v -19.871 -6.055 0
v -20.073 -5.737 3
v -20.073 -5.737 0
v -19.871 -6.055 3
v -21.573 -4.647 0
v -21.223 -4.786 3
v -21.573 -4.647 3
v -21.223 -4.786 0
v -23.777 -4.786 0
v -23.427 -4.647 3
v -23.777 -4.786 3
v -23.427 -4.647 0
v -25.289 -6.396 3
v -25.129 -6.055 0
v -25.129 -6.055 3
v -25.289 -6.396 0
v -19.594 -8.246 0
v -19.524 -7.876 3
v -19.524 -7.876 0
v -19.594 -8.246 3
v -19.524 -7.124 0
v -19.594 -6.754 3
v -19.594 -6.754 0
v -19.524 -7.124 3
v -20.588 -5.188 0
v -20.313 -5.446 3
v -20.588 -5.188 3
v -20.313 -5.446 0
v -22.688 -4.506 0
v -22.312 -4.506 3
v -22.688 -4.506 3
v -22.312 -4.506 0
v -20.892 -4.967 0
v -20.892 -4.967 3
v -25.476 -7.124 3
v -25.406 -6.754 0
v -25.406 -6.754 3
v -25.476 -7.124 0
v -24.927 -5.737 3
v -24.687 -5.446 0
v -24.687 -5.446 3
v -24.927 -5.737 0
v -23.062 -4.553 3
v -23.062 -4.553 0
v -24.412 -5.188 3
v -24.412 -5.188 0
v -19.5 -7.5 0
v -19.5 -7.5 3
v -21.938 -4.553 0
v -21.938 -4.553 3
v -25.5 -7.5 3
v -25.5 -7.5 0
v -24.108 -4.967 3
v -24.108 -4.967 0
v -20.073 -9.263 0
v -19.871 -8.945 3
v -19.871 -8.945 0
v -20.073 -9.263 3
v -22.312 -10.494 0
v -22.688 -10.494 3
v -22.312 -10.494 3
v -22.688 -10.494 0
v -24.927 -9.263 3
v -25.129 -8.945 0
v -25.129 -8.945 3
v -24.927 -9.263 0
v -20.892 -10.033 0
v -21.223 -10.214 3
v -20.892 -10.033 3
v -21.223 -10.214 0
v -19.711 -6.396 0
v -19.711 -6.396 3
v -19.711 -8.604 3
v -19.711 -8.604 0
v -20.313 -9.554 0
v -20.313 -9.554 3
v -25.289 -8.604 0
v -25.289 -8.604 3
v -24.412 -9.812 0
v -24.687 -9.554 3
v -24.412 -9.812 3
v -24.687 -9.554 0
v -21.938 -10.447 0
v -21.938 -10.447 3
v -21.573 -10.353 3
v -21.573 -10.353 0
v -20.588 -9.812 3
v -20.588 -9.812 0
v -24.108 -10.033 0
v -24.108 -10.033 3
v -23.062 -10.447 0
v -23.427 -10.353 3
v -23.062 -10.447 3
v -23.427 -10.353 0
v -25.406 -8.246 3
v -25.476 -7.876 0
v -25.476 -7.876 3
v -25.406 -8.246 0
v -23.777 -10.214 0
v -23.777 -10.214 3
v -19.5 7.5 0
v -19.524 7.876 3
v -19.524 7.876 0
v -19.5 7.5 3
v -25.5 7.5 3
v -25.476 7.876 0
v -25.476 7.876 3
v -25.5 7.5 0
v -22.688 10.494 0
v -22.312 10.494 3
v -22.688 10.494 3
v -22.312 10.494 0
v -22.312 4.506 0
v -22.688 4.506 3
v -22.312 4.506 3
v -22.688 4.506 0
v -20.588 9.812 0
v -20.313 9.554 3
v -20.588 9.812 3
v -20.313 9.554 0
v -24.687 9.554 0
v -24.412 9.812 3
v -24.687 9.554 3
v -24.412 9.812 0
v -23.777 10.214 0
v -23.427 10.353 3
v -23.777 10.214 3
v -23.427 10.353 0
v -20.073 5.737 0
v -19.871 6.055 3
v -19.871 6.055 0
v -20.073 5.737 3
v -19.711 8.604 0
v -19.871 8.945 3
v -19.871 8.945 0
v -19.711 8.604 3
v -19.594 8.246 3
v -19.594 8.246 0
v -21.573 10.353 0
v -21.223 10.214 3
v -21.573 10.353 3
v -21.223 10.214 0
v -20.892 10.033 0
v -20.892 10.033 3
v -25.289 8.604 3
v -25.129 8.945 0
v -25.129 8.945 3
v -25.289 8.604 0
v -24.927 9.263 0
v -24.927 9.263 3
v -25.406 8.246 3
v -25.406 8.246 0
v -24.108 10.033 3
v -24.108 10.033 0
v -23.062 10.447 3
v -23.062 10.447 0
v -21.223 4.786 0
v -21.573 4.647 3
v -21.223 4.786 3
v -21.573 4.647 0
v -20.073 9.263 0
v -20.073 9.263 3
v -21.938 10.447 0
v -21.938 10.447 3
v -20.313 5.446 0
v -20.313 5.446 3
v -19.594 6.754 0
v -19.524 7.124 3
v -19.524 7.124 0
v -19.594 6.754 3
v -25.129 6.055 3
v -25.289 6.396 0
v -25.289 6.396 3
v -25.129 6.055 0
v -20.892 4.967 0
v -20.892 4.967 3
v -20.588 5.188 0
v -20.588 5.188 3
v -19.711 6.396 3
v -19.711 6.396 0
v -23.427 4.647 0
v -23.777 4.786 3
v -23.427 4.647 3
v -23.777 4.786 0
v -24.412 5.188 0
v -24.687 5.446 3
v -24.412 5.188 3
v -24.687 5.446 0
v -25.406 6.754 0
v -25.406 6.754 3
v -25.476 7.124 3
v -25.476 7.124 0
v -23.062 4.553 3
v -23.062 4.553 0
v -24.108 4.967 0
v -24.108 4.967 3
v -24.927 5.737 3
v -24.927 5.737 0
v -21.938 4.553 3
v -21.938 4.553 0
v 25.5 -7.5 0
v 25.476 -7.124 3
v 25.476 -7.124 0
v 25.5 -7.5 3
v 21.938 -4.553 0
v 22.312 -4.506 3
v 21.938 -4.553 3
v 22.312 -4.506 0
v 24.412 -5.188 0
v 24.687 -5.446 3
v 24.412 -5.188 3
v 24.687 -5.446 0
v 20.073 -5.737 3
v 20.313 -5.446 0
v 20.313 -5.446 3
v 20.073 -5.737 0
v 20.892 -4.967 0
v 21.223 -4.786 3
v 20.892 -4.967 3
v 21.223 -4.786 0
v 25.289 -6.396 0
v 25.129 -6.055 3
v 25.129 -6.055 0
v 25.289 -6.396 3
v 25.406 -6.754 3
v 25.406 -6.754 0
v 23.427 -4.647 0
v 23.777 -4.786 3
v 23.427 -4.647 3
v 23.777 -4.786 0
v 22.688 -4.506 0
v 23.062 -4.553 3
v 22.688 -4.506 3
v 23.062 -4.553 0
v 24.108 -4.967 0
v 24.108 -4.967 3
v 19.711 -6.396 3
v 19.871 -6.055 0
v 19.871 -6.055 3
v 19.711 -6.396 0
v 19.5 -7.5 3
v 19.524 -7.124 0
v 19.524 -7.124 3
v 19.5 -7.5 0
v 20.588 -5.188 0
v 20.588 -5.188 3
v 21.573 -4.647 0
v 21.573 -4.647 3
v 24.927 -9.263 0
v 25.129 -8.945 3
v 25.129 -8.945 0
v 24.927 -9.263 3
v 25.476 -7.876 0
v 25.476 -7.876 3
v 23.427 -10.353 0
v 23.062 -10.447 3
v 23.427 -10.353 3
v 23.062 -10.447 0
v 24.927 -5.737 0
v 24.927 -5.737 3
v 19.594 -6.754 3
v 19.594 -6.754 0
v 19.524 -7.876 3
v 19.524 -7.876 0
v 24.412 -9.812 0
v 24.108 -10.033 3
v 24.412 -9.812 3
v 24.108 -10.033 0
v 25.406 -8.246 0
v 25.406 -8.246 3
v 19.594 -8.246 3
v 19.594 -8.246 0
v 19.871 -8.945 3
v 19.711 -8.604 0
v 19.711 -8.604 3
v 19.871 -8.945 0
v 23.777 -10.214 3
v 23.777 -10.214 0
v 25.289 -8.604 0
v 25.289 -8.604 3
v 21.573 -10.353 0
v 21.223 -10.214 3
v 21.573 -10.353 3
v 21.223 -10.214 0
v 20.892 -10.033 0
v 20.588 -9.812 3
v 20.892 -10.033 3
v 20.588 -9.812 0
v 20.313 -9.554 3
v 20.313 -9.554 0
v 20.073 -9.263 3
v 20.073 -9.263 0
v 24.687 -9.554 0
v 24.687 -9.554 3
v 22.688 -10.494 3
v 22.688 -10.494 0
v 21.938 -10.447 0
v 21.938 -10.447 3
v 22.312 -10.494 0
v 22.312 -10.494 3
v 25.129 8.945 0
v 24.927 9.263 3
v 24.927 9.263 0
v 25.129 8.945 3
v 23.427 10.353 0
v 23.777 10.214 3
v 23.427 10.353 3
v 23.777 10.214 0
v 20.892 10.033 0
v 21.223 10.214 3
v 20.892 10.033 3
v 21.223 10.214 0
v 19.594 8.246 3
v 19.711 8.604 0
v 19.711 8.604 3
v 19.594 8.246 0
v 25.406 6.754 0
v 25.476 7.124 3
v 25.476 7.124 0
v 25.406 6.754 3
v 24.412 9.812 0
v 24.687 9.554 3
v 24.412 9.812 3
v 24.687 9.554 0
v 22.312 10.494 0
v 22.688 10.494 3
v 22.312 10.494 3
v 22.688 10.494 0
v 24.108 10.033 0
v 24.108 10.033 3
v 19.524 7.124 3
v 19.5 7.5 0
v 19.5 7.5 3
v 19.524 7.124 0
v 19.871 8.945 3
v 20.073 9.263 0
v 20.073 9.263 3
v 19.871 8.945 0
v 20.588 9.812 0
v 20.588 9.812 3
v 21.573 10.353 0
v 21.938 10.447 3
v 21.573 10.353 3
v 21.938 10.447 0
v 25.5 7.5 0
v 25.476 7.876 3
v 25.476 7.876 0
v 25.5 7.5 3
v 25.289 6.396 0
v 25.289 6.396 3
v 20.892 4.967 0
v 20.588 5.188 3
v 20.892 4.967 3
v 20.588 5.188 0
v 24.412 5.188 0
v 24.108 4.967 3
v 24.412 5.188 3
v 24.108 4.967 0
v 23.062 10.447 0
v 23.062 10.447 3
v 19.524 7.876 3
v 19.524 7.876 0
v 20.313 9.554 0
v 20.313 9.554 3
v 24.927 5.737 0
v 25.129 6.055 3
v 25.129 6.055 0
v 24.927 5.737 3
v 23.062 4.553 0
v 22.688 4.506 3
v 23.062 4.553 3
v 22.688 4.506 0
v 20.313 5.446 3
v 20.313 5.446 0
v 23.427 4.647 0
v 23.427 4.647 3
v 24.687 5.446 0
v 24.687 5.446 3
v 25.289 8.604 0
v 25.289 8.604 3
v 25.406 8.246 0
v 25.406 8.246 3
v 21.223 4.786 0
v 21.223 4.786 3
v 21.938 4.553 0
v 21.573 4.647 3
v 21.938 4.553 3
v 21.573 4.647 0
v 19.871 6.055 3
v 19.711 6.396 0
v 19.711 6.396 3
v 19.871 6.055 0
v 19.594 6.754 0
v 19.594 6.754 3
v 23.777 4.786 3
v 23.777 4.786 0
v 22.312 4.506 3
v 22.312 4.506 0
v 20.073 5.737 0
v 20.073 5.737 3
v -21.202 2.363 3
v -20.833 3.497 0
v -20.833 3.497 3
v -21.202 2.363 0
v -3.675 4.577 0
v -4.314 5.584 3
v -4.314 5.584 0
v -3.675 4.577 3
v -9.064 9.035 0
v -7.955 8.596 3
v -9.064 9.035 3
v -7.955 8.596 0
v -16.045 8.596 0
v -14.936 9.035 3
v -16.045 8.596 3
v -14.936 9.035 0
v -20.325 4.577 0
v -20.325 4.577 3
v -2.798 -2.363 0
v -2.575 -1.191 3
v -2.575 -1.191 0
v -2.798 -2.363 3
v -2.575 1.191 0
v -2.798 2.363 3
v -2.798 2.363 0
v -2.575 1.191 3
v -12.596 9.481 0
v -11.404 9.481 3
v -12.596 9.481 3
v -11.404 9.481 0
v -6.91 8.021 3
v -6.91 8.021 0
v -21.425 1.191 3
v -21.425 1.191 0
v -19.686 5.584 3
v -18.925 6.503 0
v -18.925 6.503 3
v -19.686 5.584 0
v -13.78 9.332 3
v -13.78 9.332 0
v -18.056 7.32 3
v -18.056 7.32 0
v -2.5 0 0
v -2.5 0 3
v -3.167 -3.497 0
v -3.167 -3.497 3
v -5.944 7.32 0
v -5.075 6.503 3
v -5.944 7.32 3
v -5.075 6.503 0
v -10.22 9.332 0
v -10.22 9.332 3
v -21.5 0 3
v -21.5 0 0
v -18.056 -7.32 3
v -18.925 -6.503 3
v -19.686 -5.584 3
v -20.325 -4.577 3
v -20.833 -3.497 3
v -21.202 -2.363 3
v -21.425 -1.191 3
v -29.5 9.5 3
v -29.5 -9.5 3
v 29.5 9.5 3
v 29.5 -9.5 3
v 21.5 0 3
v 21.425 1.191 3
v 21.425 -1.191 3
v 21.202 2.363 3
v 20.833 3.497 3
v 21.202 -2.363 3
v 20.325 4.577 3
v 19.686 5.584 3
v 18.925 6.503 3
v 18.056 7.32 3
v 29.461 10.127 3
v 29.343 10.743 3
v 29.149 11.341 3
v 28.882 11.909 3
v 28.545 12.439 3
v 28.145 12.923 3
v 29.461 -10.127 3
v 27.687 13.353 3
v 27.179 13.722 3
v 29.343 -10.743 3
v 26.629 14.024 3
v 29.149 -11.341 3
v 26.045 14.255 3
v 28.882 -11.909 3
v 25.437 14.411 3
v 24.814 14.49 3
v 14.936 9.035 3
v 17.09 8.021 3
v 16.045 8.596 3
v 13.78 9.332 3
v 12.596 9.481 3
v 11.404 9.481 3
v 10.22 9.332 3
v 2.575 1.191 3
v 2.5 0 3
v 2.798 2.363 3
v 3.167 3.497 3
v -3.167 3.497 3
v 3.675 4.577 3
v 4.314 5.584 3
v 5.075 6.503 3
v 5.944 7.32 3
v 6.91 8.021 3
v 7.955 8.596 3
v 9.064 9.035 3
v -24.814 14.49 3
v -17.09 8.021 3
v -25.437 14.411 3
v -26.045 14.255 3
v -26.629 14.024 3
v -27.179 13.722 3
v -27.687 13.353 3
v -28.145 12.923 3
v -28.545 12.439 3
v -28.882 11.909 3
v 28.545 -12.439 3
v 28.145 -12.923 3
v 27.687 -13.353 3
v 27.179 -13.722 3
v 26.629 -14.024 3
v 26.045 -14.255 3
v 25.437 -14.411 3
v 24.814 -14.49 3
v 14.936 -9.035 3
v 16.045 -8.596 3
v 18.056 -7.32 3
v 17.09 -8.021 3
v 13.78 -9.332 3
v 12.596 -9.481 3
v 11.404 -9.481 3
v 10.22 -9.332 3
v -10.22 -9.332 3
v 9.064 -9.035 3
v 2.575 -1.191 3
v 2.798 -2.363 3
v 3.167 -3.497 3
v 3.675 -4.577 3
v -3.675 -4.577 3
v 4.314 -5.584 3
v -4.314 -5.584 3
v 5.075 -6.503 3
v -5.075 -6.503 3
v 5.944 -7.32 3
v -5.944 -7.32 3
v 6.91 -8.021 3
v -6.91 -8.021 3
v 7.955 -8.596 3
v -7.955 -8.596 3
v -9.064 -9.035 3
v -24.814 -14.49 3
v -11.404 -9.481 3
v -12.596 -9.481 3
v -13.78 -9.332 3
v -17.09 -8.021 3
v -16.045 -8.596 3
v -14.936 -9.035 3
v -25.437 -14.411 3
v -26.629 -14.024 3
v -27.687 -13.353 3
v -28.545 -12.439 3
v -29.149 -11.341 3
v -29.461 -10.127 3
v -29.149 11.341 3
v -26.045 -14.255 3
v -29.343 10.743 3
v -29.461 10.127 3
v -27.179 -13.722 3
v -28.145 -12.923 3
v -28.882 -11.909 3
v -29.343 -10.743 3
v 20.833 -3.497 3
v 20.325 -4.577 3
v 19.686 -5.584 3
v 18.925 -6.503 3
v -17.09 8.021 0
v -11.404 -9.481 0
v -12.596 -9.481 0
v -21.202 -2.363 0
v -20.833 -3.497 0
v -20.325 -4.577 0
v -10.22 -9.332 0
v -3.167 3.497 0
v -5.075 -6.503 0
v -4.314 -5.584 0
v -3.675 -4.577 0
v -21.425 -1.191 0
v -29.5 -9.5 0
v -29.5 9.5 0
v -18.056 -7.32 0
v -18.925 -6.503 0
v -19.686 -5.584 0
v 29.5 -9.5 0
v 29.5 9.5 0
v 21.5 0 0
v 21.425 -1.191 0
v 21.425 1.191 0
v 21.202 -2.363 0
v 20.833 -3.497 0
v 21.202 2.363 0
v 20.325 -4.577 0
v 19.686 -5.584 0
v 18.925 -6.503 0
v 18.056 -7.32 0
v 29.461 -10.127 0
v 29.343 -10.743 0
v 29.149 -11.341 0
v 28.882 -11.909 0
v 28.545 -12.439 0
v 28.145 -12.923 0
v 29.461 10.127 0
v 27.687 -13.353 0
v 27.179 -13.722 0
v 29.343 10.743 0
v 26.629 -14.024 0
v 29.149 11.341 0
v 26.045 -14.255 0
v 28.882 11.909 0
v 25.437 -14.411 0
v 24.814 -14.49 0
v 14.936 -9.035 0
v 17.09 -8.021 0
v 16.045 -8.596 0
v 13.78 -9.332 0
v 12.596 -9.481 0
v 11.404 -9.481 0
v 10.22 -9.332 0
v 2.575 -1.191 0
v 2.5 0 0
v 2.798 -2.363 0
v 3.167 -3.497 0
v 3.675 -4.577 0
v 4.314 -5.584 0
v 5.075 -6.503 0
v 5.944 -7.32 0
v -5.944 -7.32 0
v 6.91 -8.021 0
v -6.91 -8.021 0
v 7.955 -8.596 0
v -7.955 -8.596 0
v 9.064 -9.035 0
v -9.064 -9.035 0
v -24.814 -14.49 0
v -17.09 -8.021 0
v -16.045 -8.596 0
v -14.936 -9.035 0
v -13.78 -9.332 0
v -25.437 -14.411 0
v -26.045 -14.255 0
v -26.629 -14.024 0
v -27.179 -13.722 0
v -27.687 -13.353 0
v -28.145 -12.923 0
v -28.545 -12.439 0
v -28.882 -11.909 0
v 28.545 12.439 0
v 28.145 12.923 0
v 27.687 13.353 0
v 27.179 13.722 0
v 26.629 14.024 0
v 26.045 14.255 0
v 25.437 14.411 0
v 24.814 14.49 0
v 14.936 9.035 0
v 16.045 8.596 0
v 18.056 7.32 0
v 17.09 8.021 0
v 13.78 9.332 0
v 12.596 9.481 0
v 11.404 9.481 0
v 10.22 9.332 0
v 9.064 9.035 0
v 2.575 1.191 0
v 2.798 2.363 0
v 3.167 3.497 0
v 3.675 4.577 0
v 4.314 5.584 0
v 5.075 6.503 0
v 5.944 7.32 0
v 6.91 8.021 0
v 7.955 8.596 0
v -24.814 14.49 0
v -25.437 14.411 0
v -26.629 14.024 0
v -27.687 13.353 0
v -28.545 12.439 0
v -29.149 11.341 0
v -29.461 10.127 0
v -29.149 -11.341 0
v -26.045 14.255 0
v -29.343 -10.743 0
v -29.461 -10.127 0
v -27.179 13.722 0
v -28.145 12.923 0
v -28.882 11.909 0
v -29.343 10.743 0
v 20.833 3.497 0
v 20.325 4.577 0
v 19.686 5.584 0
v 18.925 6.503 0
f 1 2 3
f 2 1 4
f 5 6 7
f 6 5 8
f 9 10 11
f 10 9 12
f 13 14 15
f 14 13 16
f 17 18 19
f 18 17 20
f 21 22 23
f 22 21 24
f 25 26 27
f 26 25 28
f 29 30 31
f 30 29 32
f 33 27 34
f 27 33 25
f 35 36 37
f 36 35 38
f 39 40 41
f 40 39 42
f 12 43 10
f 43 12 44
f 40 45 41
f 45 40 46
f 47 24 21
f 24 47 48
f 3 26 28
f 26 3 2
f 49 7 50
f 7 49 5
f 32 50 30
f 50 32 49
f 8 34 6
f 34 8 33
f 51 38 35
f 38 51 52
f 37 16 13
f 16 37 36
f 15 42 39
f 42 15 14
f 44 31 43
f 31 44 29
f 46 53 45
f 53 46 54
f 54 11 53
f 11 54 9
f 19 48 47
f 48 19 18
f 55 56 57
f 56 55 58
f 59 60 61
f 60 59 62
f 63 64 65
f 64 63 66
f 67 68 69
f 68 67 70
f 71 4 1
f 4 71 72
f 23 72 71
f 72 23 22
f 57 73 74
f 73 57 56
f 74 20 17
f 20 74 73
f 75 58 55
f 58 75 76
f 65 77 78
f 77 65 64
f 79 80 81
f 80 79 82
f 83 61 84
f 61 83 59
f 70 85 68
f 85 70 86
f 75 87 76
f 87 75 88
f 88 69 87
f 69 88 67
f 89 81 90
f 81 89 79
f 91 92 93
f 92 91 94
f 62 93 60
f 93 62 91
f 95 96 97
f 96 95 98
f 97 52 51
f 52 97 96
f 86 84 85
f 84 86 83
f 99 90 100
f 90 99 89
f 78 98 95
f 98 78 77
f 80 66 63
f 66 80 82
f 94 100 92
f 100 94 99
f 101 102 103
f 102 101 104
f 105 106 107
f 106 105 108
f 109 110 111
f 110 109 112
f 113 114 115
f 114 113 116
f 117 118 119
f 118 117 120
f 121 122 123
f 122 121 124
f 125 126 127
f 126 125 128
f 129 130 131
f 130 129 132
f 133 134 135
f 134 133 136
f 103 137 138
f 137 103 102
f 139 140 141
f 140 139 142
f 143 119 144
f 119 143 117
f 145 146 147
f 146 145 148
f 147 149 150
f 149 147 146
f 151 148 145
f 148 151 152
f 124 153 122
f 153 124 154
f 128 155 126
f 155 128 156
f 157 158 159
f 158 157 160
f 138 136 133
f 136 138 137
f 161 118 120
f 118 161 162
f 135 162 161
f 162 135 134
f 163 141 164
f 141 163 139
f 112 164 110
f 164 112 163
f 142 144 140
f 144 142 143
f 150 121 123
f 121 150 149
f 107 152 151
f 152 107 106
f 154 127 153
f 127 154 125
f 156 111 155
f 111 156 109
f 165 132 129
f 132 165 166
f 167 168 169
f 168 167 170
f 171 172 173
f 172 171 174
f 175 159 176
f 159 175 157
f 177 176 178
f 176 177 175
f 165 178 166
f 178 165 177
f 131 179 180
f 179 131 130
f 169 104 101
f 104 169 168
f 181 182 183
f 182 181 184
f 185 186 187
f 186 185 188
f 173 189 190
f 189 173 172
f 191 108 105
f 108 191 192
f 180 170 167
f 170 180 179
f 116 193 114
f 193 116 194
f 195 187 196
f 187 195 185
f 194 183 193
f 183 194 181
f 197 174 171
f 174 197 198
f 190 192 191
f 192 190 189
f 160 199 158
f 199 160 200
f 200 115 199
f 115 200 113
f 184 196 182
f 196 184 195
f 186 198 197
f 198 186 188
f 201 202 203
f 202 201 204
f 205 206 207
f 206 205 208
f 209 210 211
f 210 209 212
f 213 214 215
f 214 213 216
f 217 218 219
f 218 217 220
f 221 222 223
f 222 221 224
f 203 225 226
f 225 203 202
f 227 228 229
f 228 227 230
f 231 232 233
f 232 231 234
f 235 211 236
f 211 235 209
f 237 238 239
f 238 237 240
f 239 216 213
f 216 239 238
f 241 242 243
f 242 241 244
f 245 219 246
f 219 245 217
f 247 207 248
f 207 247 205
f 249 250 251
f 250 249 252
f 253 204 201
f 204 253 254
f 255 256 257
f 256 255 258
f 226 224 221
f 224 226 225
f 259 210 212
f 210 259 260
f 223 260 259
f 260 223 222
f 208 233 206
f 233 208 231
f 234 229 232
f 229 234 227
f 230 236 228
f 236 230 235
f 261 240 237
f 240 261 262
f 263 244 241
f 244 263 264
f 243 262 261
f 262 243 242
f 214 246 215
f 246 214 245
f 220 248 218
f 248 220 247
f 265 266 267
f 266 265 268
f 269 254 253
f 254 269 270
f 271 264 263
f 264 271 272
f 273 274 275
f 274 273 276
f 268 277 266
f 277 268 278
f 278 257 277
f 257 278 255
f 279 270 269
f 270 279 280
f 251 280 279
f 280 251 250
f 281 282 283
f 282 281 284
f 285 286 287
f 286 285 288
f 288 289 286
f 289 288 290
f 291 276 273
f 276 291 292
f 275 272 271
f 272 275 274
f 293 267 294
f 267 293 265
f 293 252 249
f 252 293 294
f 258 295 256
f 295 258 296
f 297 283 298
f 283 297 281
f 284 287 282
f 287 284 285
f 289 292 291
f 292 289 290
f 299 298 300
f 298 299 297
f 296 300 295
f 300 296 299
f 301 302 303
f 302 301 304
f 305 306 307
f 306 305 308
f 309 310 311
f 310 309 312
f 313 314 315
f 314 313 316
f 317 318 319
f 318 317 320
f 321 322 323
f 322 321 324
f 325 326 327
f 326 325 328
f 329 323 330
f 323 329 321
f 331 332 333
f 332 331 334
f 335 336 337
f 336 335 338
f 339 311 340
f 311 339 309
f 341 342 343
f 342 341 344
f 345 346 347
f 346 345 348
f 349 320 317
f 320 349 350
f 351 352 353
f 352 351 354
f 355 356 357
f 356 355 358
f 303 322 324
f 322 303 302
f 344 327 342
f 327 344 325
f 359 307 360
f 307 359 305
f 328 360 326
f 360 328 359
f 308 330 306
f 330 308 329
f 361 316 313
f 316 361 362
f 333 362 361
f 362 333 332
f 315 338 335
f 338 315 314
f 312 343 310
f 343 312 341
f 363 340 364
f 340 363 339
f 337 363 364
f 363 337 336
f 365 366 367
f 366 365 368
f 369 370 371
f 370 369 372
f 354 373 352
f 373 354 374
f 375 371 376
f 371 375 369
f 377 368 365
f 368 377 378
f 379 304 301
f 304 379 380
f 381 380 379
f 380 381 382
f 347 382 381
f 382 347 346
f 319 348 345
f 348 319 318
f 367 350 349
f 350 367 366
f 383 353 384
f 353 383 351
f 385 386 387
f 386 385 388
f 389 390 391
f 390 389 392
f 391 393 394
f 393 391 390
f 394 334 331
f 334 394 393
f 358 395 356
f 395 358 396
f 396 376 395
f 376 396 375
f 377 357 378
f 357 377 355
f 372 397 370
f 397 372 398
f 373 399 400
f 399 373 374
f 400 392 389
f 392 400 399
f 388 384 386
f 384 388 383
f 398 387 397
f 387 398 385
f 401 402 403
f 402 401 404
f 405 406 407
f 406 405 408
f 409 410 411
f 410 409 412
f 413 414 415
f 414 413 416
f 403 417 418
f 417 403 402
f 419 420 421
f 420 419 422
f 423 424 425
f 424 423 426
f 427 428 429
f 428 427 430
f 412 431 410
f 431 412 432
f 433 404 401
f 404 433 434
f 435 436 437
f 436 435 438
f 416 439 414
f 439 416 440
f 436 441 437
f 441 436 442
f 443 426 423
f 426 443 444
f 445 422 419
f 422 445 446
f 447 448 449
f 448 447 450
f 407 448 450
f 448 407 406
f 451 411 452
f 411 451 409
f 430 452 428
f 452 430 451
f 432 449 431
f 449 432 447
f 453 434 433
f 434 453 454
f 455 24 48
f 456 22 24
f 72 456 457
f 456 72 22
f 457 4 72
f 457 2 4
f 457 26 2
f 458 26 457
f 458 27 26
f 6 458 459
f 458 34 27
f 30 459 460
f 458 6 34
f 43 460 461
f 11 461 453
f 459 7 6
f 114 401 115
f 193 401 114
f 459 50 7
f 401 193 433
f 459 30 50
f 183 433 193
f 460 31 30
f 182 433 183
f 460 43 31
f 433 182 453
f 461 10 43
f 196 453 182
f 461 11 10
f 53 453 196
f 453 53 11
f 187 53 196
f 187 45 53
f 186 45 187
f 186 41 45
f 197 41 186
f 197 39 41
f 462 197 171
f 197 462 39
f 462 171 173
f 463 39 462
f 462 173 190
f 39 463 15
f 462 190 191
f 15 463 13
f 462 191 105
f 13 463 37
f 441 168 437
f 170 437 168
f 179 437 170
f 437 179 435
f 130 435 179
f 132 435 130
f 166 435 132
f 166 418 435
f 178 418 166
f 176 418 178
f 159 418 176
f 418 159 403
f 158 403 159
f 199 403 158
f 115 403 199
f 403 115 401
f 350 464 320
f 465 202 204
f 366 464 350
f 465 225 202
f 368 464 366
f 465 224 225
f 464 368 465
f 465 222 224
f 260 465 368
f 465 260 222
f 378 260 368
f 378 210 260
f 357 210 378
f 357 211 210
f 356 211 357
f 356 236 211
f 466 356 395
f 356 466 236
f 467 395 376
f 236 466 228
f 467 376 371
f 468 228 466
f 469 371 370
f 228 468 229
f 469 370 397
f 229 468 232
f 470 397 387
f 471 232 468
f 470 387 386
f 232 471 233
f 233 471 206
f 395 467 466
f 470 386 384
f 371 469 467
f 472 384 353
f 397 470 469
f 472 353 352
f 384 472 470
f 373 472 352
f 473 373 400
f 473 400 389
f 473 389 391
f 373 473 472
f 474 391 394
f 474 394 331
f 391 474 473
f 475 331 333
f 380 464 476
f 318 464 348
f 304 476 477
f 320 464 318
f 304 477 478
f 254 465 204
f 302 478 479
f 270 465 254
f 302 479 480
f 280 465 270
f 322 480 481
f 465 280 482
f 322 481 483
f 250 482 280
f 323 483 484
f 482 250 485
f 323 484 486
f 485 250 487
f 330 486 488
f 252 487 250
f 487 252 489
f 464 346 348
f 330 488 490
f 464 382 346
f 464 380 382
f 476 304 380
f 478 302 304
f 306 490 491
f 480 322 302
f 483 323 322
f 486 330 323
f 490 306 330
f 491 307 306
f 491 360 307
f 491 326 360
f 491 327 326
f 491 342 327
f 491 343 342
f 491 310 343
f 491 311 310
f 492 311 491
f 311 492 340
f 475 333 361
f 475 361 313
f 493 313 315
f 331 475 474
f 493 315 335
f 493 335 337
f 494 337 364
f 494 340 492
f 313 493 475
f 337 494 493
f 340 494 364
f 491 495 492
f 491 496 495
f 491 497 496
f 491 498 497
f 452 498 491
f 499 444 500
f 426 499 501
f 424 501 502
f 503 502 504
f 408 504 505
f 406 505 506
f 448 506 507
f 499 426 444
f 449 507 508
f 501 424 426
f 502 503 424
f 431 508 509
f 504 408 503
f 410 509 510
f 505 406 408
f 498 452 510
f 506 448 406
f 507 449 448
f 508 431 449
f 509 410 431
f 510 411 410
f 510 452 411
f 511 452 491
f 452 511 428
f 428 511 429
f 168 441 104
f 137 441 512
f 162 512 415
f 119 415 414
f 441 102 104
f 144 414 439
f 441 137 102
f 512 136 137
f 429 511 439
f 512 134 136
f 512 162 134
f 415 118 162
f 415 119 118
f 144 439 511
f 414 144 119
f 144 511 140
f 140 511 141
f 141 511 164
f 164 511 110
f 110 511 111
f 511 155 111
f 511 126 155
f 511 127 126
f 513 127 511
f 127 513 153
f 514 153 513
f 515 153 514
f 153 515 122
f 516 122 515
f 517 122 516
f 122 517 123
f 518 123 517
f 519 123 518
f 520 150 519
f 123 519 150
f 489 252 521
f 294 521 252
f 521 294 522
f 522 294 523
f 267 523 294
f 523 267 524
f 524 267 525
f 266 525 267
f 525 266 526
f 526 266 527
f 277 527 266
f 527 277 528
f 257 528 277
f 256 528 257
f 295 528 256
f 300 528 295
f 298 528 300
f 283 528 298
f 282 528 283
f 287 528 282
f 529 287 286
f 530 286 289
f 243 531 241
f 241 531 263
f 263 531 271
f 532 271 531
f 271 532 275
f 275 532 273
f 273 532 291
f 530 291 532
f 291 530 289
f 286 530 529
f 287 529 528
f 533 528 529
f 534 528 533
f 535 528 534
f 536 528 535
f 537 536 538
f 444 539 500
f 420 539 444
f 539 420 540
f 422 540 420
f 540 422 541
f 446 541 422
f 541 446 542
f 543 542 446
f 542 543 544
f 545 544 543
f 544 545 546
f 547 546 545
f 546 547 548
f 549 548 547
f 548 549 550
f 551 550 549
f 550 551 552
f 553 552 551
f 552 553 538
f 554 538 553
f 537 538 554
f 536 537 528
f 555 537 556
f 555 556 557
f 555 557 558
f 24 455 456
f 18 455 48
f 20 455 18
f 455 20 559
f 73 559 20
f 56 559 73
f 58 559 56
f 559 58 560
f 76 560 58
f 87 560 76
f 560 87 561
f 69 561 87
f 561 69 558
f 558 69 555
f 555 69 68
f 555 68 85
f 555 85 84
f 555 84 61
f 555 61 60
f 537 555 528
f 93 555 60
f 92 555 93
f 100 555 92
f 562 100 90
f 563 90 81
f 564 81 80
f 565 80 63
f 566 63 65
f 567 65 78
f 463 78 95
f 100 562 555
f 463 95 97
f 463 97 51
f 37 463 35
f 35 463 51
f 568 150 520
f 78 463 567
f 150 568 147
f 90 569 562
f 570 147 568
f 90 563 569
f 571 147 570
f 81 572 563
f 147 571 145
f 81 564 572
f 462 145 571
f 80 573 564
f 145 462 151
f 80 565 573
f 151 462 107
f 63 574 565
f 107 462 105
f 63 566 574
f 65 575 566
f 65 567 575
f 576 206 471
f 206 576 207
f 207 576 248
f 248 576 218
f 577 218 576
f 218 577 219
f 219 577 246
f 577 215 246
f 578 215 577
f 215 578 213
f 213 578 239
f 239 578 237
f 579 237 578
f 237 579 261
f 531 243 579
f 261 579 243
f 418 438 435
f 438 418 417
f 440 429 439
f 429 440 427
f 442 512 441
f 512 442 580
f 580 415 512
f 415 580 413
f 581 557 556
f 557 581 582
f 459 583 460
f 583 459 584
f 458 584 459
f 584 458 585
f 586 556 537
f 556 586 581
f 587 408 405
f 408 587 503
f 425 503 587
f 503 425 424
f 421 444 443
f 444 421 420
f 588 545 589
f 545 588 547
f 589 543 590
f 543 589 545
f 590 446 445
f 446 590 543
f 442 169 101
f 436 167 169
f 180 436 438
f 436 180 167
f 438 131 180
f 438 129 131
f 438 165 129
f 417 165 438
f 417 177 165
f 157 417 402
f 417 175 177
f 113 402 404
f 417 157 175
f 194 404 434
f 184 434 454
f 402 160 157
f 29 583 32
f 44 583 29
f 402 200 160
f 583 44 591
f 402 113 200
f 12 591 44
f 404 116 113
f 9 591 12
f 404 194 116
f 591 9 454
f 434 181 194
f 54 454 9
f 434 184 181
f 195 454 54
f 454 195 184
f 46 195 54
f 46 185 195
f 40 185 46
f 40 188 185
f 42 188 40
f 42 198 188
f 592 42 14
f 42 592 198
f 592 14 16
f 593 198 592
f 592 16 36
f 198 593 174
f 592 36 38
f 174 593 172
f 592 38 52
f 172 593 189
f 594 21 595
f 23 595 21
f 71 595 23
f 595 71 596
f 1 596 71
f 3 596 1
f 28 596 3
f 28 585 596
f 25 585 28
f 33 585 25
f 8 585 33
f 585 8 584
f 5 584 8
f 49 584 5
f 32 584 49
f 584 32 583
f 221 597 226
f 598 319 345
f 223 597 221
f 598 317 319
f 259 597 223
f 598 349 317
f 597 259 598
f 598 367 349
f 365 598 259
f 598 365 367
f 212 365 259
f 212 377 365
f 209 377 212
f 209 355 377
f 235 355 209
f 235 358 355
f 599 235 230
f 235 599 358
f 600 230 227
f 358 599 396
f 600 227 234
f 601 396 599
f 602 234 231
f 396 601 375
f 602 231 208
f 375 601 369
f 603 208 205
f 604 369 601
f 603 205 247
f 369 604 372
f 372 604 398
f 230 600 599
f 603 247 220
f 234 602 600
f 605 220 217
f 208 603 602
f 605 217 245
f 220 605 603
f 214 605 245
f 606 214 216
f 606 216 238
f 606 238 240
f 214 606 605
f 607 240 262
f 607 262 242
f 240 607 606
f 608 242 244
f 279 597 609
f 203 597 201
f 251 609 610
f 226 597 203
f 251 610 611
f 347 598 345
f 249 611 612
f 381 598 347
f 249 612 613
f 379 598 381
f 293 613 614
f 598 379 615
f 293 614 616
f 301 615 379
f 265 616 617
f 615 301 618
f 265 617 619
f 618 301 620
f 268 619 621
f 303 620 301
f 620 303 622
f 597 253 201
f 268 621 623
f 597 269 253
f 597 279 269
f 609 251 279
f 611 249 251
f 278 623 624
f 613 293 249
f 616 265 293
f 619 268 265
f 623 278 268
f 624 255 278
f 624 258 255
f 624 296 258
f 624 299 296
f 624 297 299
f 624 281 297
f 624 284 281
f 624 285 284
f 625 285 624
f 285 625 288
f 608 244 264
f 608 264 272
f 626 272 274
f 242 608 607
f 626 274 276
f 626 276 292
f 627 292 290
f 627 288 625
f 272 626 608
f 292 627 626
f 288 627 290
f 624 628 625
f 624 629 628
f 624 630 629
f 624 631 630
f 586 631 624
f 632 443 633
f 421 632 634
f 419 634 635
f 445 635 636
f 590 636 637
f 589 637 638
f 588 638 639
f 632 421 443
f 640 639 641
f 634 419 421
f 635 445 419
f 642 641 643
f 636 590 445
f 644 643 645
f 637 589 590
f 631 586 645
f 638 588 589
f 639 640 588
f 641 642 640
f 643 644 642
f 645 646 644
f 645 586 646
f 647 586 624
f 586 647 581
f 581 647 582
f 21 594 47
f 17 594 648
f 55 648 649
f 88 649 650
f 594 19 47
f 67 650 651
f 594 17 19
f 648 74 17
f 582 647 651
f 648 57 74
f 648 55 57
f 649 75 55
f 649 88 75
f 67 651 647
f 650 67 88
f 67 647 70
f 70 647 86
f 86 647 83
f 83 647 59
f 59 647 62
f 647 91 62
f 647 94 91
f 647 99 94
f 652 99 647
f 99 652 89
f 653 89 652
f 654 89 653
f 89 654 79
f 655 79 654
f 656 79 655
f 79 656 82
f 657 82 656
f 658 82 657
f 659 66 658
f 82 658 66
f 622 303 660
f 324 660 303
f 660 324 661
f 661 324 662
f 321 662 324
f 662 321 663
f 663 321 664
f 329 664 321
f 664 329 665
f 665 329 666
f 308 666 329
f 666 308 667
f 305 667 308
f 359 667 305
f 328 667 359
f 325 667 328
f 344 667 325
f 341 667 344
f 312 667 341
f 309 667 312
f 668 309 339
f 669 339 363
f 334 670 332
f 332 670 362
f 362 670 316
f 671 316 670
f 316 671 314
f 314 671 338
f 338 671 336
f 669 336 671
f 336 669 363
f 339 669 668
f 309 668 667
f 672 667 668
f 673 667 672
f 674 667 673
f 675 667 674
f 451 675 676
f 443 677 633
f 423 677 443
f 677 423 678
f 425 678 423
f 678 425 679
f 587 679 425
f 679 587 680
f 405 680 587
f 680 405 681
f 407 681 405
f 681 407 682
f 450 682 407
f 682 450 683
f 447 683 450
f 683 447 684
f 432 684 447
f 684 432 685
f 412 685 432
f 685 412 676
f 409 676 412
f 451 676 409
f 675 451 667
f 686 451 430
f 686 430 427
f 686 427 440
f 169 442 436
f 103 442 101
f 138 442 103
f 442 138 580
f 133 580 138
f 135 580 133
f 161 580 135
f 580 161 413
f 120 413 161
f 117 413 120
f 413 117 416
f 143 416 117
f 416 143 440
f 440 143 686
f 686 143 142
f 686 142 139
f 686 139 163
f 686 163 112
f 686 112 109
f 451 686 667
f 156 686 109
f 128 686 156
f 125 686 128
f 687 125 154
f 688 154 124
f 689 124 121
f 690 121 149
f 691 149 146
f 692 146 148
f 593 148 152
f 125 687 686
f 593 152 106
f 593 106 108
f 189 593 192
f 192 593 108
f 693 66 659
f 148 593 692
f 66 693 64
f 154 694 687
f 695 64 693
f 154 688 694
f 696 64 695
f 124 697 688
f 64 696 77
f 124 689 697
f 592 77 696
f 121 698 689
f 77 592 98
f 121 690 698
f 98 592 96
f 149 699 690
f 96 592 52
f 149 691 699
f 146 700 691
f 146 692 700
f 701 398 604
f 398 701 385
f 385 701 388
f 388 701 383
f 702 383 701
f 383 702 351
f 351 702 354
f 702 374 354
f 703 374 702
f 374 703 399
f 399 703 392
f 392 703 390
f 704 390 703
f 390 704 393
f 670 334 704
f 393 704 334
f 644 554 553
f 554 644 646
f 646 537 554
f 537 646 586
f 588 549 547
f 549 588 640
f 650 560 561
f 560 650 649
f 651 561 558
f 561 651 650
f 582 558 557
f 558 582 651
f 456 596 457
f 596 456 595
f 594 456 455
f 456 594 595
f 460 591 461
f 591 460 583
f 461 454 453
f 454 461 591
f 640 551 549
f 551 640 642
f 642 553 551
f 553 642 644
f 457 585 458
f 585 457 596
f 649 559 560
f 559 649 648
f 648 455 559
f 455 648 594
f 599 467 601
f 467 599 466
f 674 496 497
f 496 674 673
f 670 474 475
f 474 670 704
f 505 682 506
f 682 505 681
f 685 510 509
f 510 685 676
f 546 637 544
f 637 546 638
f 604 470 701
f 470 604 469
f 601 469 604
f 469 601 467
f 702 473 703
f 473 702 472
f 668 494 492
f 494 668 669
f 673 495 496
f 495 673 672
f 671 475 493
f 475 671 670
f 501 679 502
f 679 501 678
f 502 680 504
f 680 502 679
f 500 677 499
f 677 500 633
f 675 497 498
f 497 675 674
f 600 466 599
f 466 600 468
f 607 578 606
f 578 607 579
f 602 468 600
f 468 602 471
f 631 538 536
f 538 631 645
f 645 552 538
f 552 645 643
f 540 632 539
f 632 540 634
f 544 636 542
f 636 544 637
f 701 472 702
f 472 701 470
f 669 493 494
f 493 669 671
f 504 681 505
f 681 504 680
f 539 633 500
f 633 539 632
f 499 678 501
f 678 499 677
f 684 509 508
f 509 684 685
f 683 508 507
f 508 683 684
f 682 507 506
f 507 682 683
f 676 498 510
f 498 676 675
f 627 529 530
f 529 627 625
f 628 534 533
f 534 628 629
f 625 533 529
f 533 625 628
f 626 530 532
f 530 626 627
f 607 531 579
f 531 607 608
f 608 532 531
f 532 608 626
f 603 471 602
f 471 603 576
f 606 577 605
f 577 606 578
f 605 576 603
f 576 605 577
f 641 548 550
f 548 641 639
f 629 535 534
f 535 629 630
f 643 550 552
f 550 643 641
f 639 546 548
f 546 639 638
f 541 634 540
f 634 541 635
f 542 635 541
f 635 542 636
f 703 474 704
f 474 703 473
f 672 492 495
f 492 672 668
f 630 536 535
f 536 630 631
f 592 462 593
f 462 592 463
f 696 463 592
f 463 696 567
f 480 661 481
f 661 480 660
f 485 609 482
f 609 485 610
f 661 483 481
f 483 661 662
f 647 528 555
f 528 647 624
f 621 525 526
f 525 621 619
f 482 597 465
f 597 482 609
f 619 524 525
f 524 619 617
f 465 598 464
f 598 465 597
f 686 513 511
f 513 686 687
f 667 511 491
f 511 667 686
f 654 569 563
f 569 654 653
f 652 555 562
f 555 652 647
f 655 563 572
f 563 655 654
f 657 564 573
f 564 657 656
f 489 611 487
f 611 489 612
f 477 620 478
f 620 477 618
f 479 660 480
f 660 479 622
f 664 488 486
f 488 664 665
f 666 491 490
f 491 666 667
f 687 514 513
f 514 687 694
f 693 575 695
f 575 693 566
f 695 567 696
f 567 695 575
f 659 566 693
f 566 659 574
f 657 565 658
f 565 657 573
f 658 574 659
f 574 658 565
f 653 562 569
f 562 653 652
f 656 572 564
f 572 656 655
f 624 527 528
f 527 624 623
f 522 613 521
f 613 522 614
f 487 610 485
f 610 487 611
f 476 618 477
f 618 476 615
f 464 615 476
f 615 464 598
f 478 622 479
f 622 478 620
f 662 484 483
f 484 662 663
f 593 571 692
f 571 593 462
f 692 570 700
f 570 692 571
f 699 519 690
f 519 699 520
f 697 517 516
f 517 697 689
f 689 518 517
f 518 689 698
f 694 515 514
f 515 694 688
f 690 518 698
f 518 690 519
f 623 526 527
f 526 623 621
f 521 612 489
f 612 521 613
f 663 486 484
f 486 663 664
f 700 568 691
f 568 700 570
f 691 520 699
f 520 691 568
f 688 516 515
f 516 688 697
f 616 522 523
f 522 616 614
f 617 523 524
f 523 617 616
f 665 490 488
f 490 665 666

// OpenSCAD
$fn = 50;


difference() {
	union() {
		hull() {
			translate(v = [-24.5000000000, 9.5000000000, 0]) {
				cylinder(h = 3, r = 5);
			}
			translate(v = [24.5000000000, 9.5000000000, 0]) {
				cylinder(h = 3, r = 5);
			}
			translate(v = [-24.5000000000, -9.5000000000, 0]) {
				cylinder(h = 3, r = 5);
			}
			translate(v = [24.5000000000, -9.5000000000, 0]) {
				cylinder(h = 3, r = 5);
			}
		}
	}
	union() {
		#translate(v = [-22.5000000000, -7.5000000000, -100.0000000000]) {
			cylinder(h = 200, r = 3.0000000000);
		}
		#translate(v = [-22.5000000000, 7.5000000000, -100.0000000000]) {
			cylinder(h = 200, r = 3.0000000000);
		}
		#translate(v = [22.5000000000, -7.5000000000, -100.0000000000]) {
			cylinder(h = 200, r = 3.0000000000);
		}
		#translate(v = [22.5000000000, 7.5000000000, -100.0000000000]) {
			cylinder(h = 200, r = 3.0000000000);
		}
		#translate(v = [-12.0000000000, 0, 0]) {
			cylinder(h = 3, r = 9.5000000000);
		}
		#translate(v = [12.0000000000, 0, 0]) {
			cylinder(h = 3, r = 9.5000000000);
		}
	}
}
